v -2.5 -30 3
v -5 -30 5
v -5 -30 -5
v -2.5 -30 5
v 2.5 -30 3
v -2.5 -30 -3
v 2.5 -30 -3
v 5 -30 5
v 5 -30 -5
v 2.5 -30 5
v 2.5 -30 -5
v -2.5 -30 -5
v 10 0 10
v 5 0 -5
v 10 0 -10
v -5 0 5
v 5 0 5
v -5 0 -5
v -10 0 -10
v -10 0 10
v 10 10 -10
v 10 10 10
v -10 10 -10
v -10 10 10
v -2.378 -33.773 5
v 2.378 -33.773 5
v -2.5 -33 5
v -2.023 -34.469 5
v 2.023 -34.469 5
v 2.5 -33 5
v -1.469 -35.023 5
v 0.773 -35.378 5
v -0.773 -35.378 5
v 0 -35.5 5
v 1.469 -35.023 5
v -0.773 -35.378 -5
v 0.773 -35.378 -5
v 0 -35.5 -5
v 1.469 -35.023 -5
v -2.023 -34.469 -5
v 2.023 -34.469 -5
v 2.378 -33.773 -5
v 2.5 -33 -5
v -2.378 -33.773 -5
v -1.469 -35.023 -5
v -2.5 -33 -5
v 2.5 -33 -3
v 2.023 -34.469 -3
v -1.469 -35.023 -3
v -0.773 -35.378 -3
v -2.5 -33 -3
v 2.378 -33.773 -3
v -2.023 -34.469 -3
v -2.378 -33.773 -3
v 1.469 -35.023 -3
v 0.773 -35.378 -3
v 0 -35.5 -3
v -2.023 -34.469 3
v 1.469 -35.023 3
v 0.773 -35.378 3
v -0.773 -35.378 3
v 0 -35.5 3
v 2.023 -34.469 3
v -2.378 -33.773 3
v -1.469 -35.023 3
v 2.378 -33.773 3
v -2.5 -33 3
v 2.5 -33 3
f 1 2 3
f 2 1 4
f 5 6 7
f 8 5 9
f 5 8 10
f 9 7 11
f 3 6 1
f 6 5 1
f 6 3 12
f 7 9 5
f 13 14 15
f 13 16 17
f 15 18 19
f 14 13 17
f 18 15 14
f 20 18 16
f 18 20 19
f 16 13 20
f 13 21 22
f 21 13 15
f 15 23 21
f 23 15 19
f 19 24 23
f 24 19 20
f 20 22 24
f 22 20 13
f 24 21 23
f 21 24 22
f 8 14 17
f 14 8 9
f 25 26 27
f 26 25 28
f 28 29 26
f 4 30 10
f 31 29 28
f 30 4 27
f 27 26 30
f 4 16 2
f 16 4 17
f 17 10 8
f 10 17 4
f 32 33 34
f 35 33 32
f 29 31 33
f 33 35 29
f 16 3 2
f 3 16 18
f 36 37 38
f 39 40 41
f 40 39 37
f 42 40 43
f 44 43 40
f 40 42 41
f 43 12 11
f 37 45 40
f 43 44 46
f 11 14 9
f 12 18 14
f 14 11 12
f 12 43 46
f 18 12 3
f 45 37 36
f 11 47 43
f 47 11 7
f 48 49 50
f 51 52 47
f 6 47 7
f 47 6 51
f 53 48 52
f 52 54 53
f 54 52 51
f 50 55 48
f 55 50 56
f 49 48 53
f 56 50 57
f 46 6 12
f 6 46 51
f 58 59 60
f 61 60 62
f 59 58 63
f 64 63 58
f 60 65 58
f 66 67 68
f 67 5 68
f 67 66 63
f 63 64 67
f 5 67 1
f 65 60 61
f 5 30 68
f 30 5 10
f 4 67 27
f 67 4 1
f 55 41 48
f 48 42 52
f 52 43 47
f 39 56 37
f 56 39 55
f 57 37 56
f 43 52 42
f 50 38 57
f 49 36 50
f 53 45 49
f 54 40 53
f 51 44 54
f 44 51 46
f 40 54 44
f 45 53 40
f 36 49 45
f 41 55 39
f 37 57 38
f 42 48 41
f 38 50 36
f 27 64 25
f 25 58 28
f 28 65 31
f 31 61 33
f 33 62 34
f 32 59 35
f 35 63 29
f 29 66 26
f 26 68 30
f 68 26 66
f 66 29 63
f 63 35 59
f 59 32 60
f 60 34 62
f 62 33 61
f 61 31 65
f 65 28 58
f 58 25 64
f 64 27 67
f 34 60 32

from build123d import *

# Parameters (mm, degrees)
SKETCH1_W           = 20
SKETCH1_H           = 20
BOSS_EXTRUDE1_DEPTH = 10
SKETCH2_W           = 10
SKETCH2_H           = 10
BOSS_EXTRUDE2_DEPTH = 30
SKETCH3_W           = 5
SKETCH3_H           = 2
BOSS_EXTRUDE3_DEPTH = 3
SKETCH4_R           = 2.5
BOSS_EXTRUDE4_DEPTH = 2


with BuildPart() as part:
    # Sketch1 → Boss-Extrude1 (new body)
    with BuildSketch(Plane(origin=(0, 0, 0), x_dir=(1, 0, 0), z_dir=(0, 1, 0))):
        Rectangle(SKETCH1_W, SKETCH1_H)
    extrude(amount=BOSS_EXTRUDE1_DEPTH)

    # Sketch2 → Boss-Extrude2 (add)
    with BuildSketch(Plane(origin=(0, 0, 0), x_dir=(-1, 0, 0), z_dir=(0, -1, 0))):
        Rectangle(SKETCH2_W, SKETCH2_H)
    extrude(amount=BOSS_EXTRUDE2_DEPTH)

    # Sketch3 → Boss-Extrude3 (add)
    with BuildSketch(Plane(origin=(0, -30, 0), x_dir=(-1, 0, 0), z_dir=(0, -1, 0))):
        with Locations((0, 4)):
            Rectangle(SKETCH3_W, SKETCH3_H)
        with Locations((0, -4)):
            Rectangle(SKETCH3_W, SKETCH3_H)
    extrude(amount=BOSS_EXTRUDE3_DEPTH)

    # Sketch4 → Boss-Extrude4 (add)
    with BuildSketch(Plane(origin=(0, 0, -5), x_dir=(1, 0, 0), z_dir=(0, 0, -1))):
        with Locations((0, 33)):
            Circle(SKETCH4_R)
    boss_extrude4 = extrude(amount=-BOSS_EXTRUDE4_DEPTH)

    # Mirror2: Boss-Extrude4 across plane
    add(boss_extrude4.mirror(Plane.XY))


solid = part.part
